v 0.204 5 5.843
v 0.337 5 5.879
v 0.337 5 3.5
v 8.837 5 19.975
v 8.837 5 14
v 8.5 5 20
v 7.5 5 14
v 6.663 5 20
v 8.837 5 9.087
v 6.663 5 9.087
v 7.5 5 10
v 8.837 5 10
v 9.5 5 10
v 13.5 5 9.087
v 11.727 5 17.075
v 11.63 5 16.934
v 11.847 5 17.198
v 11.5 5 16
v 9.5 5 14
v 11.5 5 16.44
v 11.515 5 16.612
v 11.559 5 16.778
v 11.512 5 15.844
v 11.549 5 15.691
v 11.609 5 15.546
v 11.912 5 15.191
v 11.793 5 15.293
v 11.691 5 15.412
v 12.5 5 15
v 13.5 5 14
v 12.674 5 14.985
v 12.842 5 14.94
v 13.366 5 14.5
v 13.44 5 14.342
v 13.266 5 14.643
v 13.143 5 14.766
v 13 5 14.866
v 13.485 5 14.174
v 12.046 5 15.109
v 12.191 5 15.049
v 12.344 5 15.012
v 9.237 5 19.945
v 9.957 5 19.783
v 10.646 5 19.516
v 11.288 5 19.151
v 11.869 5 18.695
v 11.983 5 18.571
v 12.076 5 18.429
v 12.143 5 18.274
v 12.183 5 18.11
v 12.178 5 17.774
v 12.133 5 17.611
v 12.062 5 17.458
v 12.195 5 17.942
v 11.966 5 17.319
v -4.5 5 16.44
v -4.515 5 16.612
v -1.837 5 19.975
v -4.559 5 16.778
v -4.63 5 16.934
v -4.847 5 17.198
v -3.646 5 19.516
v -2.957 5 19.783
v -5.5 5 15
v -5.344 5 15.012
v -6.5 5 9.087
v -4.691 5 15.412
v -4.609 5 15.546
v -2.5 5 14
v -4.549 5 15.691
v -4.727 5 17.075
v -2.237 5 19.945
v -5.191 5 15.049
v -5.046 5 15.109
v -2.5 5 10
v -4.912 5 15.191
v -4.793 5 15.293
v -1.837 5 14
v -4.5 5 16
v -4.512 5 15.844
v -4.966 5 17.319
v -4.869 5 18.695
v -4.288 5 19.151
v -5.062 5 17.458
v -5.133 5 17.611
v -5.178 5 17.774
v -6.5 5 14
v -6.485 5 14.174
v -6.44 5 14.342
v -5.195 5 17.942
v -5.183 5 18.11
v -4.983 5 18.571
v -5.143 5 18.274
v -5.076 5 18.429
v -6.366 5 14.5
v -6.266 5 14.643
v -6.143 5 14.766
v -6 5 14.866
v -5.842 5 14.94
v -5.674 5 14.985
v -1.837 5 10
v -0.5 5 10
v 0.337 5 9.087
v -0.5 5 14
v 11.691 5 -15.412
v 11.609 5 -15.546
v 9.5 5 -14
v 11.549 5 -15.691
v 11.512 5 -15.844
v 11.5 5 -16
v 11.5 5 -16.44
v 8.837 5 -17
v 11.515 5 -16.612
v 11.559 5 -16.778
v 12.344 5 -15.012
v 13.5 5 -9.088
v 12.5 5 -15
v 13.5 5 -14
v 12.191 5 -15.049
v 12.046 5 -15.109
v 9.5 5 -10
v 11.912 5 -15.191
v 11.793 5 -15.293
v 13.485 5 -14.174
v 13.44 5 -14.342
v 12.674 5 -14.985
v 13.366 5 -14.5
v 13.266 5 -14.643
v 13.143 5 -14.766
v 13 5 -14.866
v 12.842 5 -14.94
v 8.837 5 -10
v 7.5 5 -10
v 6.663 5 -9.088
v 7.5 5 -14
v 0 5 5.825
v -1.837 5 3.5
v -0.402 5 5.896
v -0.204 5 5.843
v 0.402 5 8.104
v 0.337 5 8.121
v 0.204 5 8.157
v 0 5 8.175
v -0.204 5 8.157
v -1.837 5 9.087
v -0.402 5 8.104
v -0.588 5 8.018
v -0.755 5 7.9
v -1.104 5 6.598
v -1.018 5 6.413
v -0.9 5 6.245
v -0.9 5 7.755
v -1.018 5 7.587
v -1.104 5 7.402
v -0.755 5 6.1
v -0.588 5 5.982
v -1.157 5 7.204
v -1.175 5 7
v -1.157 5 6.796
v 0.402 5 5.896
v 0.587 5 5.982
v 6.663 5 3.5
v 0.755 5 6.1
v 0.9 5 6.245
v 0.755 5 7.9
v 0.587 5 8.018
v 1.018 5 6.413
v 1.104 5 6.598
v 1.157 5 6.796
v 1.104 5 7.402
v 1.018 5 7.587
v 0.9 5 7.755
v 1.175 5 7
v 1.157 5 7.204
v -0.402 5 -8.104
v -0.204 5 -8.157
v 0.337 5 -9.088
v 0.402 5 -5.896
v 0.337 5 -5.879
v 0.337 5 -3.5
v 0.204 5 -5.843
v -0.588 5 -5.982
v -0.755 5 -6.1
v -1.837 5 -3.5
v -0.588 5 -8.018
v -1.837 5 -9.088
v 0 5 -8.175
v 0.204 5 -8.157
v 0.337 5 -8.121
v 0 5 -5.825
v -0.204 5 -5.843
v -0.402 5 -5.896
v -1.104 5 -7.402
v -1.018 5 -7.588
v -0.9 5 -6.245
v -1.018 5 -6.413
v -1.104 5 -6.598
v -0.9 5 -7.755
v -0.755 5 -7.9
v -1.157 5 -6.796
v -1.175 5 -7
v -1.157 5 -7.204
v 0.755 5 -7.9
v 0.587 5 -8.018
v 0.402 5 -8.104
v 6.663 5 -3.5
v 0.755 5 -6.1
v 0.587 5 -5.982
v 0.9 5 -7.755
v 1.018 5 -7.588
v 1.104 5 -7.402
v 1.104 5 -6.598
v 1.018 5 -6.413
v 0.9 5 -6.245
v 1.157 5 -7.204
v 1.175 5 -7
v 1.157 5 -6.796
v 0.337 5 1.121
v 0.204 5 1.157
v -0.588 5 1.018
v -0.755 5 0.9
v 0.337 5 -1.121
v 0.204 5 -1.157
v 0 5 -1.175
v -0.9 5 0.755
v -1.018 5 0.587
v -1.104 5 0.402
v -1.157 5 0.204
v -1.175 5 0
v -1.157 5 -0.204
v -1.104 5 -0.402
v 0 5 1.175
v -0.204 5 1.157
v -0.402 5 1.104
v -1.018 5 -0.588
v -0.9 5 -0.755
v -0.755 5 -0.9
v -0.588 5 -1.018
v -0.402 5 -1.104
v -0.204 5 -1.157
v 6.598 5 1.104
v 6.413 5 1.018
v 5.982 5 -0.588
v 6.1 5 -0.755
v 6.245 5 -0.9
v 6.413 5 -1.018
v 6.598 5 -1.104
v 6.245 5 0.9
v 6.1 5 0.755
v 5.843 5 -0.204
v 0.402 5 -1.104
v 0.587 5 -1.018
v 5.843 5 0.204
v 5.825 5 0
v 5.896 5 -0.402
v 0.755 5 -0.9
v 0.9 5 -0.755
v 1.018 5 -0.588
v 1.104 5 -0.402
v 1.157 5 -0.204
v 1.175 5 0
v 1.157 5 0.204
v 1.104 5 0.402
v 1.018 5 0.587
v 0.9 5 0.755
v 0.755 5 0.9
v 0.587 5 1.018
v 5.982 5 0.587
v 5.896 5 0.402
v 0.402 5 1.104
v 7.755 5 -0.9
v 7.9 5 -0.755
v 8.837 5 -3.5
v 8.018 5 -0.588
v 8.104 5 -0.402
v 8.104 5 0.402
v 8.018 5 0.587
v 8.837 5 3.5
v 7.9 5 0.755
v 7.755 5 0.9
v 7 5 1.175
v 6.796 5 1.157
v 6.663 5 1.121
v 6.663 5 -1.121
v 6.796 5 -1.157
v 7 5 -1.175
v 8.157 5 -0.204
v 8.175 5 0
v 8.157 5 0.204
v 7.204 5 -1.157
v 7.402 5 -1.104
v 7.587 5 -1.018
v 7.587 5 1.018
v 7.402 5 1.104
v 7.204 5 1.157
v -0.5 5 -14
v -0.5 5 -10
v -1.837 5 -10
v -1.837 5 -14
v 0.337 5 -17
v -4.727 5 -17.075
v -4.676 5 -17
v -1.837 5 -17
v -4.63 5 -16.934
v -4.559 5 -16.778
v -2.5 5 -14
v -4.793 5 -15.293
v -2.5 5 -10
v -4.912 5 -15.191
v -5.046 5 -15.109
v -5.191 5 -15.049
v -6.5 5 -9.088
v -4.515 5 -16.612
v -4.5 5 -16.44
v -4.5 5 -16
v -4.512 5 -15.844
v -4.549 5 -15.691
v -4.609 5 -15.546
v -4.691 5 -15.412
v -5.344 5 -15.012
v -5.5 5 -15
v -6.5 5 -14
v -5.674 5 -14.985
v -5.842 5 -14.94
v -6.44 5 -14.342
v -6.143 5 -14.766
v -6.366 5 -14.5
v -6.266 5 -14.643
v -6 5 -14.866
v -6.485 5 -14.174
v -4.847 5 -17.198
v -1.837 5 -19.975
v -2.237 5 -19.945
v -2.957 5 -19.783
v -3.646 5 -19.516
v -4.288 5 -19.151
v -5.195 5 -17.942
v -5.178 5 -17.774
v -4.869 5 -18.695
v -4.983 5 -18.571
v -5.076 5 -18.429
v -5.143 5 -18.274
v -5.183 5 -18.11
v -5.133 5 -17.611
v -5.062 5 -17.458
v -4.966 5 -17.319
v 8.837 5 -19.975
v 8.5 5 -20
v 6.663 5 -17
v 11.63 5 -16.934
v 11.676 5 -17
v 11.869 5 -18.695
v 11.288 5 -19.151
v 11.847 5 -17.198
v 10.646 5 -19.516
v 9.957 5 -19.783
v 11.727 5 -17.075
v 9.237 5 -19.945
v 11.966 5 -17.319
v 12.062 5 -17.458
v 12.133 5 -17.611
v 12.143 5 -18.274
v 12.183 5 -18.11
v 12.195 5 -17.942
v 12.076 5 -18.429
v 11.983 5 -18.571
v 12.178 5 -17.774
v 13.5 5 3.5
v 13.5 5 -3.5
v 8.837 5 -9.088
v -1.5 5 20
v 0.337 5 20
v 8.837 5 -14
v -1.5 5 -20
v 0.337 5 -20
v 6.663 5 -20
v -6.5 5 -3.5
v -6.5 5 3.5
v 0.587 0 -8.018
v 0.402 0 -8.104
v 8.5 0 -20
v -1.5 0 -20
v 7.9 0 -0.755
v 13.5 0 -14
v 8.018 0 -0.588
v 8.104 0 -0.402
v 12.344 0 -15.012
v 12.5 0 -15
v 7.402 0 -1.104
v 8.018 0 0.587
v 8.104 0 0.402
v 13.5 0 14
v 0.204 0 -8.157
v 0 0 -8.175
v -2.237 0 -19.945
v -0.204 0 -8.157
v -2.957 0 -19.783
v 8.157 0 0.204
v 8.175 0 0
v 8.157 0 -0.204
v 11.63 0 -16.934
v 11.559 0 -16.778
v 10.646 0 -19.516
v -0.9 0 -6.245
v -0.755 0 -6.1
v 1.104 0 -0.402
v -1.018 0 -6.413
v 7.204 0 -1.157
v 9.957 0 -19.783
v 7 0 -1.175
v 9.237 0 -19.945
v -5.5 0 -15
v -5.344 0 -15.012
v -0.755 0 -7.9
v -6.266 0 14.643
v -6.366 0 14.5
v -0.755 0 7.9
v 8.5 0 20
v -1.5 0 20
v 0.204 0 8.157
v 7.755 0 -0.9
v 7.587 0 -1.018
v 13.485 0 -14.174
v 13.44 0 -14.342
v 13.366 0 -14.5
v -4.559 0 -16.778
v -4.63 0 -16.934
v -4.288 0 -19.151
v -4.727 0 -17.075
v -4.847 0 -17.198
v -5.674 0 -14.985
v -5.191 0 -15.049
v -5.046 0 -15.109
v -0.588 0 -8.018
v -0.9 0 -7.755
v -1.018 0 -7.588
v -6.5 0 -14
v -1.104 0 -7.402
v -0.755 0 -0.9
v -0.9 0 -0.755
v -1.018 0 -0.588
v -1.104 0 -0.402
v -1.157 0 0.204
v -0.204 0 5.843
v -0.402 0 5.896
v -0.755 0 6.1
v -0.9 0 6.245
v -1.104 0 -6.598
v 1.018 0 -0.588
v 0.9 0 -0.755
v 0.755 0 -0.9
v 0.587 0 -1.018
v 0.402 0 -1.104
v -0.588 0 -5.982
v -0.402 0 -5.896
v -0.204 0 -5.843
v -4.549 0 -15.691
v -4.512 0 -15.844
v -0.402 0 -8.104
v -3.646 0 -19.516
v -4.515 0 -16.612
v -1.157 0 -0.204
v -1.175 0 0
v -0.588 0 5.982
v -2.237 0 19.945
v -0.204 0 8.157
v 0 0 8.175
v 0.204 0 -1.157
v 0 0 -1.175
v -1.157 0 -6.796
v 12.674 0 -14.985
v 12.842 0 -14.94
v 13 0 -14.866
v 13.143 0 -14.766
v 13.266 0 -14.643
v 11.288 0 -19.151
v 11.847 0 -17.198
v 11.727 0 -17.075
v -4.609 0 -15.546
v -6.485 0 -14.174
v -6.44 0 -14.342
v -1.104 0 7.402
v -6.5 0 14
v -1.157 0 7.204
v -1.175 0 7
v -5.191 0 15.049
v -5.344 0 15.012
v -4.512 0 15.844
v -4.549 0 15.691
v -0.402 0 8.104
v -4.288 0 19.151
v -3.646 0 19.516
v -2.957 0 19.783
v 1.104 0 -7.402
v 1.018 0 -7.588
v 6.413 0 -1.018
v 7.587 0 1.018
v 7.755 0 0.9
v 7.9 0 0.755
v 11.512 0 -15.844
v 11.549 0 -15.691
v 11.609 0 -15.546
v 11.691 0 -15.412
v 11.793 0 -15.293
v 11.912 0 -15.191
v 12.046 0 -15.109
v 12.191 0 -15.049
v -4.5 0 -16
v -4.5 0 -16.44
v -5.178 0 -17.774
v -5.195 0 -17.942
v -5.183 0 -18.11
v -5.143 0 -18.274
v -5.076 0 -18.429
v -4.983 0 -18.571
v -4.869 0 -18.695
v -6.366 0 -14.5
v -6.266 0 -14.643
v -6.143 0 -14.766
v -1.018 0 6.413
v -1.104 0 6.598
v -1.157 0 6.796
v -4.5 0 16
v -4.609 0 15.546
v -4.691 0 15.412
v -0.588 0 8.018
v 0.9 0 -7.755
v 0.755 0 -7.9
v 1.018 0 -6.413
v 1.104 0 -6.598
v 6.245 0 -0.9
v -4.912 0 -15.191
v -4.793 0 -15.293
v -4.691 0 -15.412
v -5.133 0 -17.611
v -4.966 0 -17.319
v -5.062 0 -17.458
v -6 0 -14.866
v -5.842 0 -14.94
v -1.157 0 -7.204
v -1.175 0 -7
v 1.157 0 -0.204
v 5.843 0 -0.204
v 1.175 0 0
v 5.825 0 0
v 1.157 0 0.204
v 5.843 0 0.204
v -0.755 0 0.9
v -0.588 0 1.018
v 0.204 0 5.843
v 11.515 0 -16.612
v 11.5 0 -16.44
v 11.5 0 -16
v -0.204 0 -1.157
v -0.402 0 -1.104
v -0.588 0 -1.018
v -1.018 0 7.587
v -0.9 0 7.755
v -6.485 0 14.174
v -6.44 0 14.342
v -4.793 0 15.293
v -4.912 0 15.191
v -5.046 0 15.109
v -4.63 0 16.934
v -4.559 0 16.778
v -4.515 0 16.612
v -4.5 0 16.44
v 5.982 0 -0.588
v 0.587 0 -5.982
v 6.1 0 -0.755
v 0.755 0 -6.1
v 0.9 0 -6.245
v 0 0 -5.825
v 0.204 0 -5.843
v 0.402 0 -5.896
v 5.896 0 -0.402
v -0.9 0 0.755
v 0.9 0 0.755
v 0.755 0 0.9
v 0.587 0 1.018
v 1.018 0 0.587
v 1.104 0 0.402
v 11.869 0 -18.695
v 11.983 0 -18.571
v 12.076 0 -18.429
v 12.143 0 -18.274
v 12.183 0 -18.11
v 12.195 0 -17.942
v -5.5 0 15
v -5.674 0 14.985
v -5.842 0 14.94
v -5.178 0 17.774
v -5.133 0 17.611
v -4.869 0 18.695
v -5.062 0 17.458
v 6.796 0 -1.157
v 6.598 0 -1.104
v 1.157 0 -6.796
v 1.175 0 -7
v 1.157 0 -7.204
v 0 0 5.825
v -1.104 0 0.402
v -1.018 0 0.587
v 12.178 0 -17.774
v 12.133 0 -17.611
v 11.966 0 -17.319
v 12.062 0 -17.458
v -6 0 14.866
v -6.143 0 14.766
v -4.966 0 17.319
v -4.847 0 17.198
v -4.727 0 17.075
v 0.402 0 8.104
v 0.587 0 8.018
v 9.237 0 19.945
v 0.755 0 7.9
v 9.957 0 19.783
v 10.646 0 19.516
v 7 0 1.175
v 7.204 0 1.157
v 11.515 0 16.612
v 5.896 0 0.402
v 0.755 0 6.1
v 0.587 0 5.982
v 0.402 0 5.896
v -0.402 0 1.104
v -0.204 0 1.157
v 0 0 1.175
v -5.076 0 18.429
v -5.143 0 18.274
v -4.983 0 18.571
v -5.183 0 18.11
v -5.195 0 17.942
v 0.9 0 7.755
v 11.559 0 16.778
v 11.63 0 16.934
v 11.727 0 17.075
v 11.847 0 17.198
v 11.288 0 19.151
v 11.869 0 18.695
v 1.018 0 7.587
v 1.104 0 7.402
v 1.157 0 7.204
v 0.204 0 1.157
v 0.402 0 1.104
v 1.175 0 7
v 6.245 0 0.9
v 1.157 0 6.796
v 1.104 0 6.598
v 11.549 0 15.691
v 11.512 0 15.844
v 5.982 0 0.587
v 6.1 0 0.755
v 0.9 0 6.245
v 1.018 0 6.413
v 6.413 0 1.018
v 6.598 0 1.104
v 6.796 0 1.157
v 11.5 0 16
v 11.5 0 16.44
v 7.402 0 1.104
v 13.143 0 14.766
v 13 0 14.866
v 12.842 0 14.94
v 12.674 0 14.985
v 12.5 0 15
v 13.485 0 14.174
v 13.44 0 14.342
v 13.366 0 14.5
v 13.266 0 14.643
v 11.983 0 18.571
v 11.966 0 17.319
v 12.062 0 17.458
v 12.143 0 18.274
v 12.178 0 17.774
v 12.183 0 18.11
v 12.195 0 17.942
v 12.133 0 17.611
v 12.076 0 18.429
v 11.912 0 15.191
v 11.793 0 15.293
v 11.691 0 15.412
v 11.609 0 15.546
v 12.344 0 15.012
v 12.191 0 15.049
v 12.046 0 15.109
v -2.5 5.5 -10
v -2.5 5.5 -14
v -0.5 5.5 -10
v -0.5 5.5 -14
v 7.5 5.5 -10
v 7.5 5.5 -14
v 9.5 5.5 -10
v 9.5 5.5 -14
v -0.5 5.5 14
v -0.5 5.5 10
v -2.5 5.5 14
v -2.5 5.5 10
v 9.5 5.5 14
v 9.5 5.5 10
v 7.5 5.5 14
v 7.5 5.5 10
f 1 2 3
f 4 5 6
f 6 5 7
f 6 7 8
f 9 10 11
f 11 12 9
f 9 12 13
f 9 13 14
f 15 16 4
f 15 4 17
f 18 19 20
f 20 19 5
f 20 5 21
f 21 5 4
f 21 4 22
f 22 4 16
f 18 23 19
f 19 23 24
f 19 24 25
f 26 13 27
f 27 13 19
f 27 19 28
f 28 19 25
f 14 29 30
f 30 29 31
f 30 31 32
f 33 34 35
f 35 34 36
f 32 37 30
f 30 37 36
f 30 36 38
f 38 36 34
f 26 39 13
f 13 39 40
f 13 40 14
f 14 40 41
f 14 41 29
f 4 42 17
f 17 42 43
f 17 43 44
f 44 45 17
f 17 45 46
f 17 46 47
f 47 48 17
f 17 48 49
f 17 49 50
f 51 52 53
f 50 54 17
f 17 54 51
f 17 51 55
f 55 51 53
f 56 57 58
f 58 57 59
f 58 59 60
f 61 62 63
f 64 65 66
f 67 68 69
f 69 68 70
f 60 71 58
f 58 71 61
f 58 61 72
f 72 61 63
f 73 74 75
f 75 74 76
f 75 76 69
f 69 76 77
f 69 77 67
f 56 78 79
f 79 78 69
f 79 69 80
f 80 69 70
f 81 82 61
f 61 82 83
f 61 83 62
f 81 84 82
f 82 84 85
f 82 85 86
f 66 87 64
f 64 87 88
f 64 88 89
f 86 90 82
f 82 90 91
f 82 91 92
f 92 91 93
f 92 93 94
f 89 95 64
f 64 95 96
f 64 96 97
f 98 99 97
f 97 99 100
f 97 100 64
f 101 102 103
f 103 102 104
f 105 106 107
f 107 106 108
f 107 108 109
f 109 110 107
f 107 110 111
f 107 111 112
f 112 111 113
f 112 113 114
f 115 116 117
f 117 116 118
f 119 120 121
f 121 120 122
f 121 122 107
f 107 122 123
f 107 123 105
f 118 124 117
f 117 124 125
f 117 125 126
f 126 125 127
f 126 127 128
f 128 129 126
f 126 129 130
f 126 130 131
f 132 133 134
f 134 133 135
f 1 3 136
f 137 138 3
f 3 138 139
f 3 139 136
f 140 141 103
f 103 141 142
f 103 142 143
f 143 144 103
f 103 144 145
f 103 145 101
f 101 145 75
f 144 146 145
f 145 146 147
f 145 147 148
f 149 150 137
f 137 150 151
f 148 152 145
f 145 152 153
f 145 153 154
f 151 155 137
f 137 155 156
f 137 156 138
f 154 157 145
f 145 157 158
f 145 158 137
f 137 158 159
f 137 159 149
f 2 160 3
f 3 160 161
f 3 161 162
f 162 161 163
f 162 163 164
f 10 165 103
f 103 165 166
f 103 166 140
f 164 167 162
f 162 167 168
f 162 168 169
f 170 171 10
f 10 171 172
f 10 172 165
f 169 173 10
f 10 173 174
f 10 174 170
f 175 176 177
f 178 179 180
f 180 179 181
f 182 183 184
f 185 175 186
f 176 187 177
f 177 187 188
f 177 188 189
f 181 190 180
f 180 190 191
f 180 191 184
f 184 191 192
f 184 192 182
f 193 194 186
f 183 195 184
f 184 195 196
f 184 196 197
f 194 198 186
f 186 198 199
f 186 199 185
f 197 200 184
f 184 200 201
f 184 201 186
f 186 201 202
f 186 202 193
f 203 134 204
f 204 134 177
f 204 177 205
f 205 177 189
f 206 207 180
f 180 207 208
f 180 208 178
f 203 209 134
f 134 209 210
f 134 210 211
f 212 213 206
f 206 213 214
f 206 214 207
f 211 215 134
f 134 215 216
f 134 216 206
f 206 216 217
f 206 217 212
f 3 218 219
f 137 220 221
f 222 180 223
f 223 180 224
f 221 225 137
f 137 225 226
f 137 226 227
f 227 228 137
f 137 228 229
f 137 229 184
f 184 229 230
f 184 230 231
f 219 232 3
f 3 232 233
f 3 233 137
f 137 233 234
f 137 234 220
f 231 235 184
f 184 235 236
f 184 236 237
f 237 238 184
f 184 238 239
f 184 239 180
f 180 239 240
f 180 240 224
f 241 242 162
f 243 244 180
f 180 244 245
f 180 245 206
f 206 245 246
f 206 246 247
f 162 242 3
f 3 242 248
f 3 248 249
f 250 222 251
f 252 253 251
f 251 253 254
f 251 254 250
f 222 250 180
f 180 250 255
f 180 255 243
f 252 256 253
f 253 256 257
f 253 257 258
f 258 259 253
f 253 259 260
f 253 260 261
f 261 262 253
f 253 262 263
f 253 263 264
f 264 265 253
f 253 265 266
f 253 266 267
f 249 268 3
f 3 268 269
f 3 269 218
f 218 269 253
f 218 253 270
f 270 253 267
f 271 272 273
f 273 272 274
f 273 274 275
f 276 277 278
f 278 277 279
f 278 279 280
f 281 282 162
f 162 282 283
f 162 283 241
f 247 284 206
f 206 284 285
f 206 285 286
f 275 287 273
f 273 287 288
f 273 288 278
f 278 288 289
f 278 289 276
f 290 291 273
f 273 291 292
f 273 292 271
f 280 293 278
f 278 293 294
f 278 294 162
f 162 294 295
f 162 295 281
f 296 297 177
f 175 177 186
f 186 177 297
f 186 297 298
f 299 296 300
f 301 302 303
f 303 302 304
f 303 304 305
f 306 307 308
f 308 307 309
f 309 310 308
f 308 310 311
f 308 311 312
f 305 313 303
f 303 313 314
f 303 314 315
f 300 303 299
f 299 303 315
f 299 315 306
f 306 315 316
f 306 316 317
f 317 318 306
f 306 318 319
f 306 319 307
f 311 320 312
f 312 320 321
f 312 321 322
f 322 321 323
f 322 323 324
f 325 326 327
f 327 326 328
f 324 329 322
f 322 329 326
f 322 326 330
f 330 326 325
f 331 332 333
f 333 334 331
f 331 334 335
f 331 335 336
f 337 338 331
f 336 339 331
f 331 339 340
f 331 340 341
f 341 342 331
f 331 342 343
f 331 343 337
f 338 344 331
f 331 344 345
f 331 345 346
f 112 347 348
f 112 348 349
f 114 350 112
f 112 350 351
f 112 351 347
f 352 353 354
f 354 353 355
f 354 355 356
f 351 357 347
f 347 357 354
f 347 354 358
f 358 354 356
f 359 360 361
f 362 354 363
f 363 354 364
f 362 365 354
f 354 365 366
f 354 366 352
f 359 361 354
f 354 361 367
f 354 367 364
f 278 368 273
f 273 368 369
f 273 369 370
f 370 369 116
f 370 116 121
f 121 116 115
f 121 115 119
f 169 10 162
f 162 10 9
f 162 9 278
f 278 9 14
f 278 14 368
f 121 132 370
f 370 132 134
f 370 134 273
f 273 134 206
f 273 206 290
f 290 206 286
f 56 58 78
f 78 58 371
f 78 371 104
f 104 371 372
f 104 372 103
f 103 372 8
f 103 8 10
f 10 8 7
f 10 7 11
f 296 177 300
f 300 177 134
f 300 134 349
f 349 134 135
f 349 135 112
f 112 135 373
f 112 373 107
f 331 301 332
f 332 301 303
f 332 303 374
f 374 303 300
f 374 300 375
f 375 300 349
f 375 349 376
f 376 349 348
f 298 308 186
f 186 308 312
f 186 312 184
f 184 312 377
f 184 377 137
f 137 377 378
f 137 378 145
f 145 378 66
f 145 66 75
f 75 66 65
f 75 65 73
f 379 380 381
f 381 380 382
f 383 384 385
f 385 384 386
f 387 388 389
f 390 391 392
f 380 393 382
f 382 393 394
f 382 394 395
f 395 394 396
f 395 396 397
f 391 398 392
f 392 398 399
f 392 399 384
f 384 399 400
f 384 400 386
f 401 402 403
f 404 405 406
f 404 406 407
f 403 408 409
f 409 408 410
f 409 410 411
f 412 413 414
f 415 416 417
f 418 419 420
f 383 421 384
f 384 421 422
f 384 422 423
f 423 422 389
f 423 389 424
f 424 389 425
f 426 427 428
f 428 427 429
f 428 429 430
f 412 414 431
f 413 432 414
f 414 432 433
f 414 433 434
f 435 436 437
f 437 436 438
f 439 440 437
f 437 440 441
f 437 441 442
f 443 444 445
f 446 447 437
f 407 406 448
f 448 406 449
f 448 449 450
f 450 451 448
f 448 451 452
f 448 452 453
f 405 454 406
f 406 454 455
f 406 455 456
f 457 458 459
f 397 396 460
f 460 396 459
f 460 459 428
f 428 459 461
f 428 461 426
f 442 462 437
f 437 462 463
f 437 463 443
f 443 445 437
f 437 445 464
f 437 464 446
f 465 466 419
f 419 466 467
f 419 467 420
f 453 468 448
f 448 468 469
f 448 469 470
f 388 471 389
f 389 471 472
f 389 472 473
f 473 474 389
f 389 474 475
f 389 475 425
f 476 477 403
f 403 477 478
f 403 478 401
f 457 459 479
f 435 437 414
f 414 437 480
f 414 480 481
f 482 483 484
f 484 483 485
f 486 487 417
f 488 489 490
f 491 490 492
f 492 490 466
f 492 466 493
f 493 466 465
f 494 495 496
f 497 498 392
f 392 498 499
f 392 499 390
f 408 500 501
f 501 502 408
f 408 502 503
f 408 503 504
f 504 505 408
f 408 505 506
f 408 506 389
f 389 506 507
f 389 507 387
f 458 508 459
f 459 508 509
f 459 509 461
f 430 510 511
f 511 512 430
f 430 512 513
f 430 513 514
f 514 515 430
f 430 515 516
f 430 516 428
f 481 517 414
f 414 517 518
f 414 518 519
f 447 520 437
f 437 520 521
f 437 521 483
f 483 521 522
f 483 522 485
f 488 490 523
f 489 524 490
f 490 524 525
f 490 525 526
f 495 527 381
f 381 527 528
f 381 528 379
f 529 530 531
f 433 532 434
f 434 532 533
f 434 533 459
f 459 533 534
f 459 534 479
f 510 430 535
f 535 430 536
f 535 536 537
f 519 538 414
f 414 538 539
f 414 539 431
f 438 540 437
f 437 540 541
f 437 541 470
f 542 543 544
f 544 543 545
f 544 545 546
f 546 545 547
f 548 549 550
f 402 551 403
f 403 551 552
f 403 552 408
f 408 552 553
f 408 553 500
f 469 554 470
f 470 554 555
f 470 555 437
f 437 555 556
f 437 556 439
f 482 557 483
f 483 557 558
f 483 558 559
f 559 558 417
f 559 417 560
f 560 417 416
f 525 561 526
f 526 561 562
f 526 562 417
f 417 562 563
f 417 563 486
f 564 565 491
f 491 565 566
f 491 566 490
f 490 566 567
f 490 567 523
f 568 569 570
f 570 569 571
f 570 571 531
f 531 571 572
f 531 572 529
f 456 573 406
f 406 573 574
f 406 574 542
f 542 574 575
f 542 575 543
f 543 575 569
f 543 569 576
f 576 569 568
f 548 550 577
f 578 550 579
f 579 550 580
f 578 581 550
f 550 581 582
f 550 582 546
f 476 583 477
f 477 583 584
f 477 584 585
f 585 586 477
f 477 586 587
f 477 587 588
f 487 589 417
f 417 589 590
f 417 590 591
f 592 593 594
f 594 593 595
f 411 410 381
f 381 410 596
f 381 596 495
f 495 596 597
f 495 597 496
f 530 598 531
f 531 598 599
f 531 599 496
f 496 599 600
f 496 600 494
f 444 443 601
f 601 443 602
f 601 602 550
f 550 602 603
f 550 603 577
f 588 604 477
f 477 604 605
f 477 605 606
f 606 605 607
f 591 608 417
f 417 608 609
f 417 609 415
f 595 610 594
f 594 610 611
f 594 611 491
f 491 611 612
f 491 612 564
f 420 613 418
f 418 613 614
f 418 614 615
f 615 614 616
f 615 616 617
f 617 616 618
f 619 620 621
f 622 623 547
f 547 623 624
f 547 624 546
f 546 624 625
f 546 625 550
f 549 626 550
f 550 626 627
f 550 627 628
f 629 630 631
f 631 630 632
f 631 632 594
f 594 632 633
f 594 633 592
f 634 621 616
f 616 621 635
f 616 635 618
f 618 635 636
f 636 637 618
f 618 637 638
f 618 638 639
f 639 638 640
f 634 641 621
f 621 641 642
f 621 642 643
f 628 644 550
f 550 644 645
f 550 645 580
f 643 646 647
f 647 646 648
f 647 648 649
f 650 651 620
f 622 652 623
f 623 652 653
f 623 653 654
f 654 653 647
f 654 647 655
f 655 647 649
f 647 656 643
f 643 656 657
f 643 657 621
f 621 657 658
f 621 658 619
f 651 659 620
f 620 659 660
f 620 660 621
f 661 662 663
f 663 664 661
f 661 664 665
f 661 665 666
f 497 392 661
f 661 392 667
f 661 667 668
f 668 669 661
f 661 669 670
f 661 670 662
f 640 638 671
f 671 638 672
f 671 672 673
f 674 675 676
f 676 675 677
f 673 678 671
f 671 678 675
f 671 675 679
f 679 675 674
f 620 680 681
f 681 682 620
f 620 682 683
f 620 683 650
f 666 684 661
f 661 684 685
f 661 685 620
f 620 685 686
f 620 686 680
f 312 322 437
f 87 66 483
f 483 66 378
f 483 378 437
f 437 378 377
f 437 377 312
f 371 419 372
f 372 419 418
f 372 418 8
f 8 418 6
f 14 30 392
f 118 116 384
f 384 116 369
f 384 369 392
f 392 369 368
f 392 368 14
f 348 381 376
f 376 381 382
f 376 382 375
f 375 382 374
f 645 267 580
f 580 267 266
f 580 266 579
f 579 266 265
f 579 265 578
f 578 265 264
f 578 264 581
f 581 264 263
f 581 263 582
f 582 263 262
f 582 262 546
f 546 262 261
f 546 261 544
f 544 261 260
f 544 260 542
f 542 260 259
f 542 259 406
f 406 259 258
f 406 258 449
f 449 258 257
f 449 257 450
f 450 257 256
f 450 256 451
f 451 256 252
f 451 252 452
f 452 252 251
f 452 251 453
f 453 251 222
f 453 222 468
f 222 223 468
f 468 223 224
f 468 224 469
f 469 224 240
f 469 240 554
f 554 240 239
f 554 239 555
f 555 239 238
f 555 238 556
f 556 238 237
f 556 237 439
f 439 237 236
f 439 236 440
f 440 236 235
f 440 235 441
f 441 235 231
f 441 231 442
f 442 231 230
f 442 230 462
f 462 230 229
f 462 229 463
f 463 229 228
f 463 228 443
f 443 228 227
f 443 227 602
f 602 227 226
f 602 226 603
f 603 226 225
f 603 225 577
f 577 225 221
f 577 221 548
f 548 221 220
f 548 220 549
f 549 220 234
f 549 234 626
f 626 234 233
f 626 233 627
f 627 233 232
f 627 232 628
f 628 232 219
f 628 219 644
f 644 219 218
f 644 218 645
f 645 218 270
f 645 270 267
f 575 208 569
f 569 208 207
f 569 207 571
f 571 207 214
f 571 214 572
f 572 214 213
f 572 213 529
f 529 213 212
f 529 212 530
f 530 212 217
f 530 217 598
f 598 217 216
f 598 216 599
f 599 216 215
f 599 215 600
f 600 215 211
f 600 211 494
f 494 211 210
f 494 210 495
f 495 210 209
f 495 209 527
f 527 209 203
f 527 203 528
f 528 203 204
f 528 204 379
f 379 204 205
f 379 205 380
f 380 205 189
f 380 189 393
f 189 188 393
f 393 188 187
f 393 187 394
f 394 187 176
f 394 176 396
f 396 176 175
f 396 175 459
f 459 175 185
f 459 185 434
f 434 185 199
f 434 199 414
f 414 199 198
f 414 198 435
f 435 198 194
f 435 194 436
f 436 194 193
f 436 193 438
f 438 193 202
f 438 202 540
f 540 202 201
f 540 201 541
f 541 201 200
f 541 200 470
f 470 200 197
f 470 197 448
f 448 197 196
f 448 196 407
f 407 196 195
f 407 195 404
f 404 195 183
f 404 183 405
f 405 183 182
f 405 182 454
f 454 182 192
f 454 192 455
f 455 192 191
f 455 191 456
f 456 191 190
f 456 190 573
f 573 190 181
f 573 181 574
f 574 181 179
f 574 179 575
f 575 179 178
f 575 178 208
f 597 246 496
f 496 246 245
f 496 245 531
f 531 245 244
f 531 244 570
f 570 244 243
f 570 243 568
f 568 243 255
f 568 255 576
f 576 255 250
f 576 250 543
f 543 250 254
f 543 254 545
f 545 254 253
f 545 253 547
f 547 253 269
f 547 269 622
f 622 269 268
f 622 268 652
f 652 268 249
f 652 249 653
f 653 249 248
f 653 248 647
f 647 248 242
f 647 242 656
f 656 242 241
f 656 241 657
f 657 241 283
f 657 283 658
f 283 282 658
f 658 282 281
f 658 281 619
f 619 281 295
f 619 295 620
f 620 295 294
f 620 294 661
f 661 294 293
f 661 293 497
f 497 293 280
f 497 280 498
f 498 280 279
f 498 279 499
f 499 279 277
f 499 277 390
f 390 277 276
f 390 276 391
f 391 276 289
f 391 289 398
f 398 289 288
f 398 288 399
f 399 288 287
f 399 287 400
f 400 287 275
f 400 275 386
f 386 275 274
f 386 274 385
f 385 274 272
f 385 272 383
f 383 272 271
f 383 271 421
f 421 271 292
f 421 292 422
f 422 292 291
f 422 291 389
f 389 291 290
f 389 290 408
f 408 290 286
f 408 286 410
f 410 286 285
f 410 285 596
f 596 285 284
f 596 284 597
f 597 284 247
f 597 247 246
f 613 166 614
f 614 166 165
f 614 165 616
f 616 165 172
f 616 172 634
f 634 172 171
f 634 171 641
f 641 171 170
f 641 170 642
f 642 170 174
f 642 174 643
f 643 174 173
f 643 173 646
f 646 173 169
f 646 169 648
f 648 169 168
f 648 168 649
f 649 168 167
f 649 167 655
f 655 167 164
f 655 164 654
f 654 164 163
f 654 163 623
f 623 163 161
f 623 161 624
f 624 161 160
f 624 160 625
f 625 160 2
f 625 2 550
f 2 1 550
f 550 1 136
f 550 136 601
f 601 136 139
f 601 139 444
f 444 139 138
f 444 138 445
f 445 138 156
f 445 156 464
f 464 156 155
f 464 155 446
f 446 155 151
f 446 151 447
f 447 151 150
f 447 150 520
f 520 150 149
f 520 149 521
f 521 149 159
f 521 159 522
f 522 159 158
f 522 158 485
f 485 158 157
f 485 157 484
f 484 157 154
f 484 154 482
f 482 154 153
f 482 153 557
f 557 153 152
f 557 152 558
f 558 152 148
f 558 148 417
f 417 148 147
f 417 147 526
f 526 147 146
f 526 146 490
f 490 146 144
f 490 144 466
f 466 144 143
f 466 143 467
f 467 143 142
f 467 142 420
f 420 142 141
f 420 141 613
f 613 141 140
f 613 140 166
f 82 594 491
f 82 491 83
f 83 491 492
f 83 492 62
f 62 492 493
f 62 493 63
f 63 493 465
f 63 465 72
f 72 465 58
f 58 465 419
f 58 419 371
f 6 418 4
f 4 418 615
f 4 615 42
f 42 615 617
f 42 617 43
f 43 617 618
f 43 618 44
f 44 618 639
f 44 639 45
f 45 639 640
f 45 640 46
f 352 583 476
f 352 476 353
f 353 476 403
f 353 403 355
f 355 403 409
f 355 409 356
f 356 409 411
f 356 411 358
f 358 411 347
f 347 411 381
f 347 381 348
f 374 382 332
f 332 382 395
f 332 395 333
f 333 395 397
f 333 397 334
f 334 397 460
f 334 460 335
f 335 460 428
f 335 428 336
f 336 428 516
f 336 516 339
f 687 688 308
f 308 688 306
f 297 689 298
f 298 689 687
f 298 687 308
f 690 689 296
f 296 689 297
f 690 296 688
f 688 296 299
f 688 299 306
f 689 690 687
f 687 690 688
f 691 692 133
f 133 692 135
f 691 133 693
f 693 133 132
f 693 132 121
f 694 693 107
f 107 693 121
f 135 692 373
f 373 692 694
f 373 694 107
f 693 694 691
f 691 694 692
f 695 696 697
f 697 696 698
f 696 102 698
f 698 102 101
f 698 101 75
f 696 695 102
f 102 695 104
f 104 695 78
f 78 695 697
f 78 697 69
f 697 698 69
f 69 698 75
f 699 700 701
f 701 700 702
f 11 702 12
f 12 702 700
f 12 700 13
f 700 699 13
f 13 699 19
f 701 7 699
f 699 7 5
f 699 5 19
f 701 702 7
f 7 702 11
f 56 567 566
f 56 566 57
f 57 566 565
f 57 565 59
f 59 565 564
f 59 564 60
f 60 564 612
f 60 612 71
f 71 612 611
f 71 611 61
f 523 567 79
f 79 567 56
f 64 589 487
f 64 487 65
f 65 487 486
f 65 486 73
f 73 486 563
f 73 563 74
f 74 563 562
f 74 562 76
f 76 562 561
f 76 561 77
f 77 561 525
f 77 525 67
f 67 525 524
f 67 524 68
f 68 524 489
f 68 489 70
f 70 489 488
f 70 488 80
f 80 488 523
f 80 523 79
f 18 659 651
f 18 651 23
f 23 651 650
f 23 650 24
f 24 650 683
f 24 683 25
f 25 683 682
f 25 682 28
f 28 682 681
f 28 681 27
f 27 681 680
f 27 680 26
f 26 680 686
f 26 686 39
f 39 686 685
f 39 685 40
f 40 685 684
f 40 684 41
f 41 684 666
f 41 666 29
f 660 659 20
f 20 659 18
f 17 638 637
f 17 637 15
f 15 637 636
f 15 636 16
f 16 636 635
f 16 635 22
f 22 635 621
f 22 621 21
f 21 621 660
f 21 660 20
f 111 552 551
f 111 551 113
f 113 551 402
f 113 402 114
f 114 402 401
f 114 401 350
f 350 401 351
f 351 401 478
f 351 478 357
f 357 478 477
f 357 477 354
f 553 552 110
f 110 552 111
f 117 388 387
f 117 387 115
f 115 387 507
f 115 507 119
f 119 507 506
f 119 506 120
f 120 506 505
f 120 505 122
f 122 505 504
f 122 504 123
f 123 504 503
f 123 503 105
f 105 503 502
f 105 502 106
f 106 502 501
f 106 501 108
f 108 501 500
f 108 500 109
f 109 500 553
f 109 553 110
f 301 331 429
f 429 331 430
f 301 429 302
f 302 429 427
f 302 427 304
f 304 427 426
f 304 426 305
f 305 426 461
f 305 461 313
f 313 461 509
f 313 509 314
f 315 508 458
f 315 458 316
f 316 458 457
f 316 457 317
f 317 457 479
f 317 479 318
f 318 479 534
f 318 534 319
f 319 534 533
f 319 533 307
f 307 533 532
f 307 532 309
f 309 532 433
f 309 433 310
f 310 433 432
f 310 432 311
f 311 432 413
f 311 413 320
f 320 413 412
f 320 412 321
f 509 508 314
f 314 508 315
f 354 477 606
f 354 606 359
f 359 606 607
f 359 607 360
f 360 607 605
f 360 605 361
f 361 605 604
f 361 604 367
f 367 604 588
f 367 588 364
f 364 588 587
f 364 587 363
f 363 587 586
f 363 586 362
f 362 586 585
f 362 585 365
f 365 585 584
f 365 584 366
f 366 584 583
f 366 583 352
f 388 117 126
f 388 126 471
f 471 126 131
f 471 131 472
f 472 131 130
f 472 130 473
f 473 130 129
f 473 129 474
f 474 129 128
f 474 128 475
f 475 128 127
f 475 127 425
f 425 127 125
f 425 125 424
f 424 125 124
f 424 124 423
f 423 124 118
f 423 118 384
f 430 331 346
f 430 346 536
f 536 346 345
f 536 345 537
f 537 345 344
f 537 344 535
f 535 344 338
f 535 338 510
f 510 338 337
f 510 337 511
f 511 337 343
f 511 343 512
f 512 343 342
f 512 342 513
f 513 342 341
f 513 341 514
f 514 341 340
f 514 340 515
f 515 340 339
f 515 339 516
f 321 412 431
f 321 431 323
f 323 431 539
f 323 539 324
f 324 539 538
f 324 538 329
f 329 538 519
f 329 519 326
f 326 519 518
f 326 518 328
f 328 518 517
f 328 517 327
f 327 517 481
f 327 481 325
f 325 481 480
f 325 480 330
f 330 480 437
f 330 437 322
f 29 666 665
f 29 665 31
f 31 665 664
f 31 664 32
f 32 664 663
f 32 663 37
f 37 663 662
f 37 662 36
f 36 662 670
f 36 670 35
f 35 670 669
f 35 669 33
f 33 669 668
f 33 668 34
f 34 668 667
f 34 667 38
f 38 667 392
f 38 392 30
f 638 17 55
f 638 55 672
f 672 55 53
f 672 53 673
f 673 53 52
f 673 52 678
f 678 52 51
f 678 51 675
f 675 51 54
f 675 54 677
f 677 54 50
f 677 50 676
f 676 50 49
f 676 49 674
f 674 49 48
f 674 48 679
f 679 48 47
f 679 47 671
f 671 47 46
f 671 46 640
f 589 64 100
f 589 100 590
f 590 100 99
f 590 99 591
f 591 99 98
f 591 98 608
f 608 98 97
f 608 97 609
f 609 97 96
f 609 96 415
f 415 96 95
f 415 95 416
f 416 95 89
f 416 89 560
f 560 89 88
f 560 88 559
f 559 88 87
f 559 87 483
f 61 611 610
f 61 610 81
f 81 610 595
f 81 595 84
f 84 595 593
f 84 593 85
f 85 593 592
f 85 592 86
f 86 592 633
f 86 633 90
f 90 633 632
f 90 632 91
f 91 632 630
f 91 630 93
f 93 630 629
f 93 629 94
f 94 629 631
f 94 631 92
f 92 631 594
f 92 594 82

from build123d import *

# Parameters (mm, degrees)
SKETCH1_W            = 20
SKETCH1_H            = 40
SKETCH1_R            = 1.175
BOSS_EXTRUDE1_DEPTH  = 5
FILLET1_R            = 5
SKETCH2_W            = 2
SKETCH2_H            = 4
BOSS_EXTRUDE2_DEPTH  = 0.5
LPATTERN1_COUNT      = 2
LPATTERN1_PITCH      = 10
LPATTERN1_COUNT_DIR2 = 2
LPATTERN1_PITCH_DIR2 = 24
CUT_EXTRUDE1_DEPTH   = 25.748737342
FILLET2_R            = 1


with BuildPart() as part:
    # Sketch1 → Boss-Extrude1 (new body)
    with BuildSketch(Plane(origin=(0, 0, 0), x_dir=(1, 0, 0), z_dir=(0, 1, 0))):
        with Locations((3.5, 0)):
            Rectangle(SKETCH1_W, SKETCH1_H)
        with Locations(Location((0, 0, 0), (0, 0, 270))):
            Circle(SKETCH1_R, mode=Mode.SUBTRACT)
        with Locations(Location((0, 7, 0), (0, 0, 270))):
            Circle(SKETCH1_R, mode=Mode.SUBTRACT)
        with Locations(Location((7, 0, 0), (0, 0, 270))):
            Circle(SKETCH1_R, mode=Mode.SUBTRACT)
        with Locations(Location((0, -7, 0), (0, 0, 270))):
            Circle(SKETCH1_R, mode=Mode.SUBTRACT)
    extrude(amount=BOSS_EXTRUDE1_DEPTH)

    # Fillet1
    fillet1_edges = [part.edges().sort_by_distance(p)[0] for p in [
        (-6.5, 2.5, -20),
        (13.5, 2.5, -20),
        (13.5, 2.5, 20),
        (-6.5, 2.5, 20),
    ]]
    fillet(fillet1_edges, radius=FILLET1_R)

    # Sketch2 → Boss-Extrude2 (add)
    with BuildSketch(Plane(origin=(0, 5, 0), x_dir=(1, 0, 0), z_dir=(0, 1, 0))):
        with Locations((-1.5, 12)):
            Rectangle(SKETCH2_W, SKETCH2_H)
    boss_extrude2 = extrude(amount=BOSS_EXTRUDE2_DEPTH)

    # LPattern1: Boss-Extrude2 2 × 2
    with Locations(*[(i * LPATTERN1_PITCH, 0, j * LPATTERN1_PITCH_DIR2) for i in range(LPATTERN1_COUNT) for j in range(LPATTERN1_COUNT_DIR2) if (i, j) != (0, 0)]):
        add(boss_extrude2)

    # Sketch4 → Cut-Extrude1 (cut, through all)
    with BuildSketch(Plane.XZ):
        with BuildLine():
            Line((-7.54955844, 17.440393275), (-5.5, 17.440393275))
            ThreePointArc((-5.5, 17.440393275), (-4.792893219, 17.147500056), (-4.5, 16.440393275))
            Line((-4.5, 16.440393275), (-4.5, 16))
            ThreePointArc((-4.5, 16), (-4.792893219, 15.292893219), (-5.5, 15))
            Line((-5.5, 15), (-7.54955844, 15))
            Line((-7.54955844, 15), (-7.54955844, 17.440393275))
        make_face()
        with BuildLine():
            Line((14.54955844, 17.440393275), (14.54955844, 15))
            Line((14.54955844, 15), (12.5, 15))
            ThreePointArc((12.5, 15), (11.792893219, 15.292893219), (11.5, 16))
            Line((11.5, 16), (11.5, 16.440393275))
            ThreePointArc((11.5, 16.440393275), (11.792893219, 17.147500056), (12.5, 17.440393275))
            Line((12.5, 17.440393275), (14.54955844, 17.440393275))
        make_face()
        with BuildLine():
            Line((14.54955844, -17.440393275), (12.5, -17.440393275))
            ThreePointArc((12.5, -17.440393275), (11.792893219, -17.147500056), (11.5, -16.440393275))
            Line((11.5, -16.440393275), (11.5, -16))
            ThreePointArc((11.5, -16), (11.792893219, -15.292893219), (12.5, -15))
            Line((12.5, -15), (14.54955844, -15))
            Line((14.54955844, -15), (14.54955844, -17.440393275))
        make_face()
        with BuildLine():
            Line((-4.5, -16.440393275), (-4.5, -16))
            ThreePointArc((-4.5, -16), (-4.792893219, -15.292893219), (-5.5, -15))
            Line((-5.5, -15), (-7.54955844, -15))
            Line((-7.54955844, -15), (-7.54955844, -17.440393275))
            Line((-7.54955844, -17.440393275), (-5.5, -17.440393275))
            ThreePointArc((-5.5, -17.440393275), (-4.792893219, -17.147500056), (-4.5, -16.440393275))
        make_face()
    extrude(amount=-CUT_EXTRUDE1_DEPTH, mode=Mode.SUBTRACT)

    # Fillet2
    fillet2_edges = [part.edges().sort_by_distance(p)[0] for p in [
        (12.863998243, 2.5, -17.440393275),
        (13.5, 2.5, -15),
        (-5.863998243, 2.5, -17.440393275),
        (-6.5, 2.5, -15),
        (13.5, 2.5, 15),
        (12.863998243, 2.5, 17.440393275),
        (-6.5, 2.5, 15),
        (-5.863998243, 2.5, 17.440393275),
    ]]
    fillet(fillet2_edges, radius=FILLET2_R - 0.0001)  # a hair under: the kernel refuses the full size


solid = part.part
